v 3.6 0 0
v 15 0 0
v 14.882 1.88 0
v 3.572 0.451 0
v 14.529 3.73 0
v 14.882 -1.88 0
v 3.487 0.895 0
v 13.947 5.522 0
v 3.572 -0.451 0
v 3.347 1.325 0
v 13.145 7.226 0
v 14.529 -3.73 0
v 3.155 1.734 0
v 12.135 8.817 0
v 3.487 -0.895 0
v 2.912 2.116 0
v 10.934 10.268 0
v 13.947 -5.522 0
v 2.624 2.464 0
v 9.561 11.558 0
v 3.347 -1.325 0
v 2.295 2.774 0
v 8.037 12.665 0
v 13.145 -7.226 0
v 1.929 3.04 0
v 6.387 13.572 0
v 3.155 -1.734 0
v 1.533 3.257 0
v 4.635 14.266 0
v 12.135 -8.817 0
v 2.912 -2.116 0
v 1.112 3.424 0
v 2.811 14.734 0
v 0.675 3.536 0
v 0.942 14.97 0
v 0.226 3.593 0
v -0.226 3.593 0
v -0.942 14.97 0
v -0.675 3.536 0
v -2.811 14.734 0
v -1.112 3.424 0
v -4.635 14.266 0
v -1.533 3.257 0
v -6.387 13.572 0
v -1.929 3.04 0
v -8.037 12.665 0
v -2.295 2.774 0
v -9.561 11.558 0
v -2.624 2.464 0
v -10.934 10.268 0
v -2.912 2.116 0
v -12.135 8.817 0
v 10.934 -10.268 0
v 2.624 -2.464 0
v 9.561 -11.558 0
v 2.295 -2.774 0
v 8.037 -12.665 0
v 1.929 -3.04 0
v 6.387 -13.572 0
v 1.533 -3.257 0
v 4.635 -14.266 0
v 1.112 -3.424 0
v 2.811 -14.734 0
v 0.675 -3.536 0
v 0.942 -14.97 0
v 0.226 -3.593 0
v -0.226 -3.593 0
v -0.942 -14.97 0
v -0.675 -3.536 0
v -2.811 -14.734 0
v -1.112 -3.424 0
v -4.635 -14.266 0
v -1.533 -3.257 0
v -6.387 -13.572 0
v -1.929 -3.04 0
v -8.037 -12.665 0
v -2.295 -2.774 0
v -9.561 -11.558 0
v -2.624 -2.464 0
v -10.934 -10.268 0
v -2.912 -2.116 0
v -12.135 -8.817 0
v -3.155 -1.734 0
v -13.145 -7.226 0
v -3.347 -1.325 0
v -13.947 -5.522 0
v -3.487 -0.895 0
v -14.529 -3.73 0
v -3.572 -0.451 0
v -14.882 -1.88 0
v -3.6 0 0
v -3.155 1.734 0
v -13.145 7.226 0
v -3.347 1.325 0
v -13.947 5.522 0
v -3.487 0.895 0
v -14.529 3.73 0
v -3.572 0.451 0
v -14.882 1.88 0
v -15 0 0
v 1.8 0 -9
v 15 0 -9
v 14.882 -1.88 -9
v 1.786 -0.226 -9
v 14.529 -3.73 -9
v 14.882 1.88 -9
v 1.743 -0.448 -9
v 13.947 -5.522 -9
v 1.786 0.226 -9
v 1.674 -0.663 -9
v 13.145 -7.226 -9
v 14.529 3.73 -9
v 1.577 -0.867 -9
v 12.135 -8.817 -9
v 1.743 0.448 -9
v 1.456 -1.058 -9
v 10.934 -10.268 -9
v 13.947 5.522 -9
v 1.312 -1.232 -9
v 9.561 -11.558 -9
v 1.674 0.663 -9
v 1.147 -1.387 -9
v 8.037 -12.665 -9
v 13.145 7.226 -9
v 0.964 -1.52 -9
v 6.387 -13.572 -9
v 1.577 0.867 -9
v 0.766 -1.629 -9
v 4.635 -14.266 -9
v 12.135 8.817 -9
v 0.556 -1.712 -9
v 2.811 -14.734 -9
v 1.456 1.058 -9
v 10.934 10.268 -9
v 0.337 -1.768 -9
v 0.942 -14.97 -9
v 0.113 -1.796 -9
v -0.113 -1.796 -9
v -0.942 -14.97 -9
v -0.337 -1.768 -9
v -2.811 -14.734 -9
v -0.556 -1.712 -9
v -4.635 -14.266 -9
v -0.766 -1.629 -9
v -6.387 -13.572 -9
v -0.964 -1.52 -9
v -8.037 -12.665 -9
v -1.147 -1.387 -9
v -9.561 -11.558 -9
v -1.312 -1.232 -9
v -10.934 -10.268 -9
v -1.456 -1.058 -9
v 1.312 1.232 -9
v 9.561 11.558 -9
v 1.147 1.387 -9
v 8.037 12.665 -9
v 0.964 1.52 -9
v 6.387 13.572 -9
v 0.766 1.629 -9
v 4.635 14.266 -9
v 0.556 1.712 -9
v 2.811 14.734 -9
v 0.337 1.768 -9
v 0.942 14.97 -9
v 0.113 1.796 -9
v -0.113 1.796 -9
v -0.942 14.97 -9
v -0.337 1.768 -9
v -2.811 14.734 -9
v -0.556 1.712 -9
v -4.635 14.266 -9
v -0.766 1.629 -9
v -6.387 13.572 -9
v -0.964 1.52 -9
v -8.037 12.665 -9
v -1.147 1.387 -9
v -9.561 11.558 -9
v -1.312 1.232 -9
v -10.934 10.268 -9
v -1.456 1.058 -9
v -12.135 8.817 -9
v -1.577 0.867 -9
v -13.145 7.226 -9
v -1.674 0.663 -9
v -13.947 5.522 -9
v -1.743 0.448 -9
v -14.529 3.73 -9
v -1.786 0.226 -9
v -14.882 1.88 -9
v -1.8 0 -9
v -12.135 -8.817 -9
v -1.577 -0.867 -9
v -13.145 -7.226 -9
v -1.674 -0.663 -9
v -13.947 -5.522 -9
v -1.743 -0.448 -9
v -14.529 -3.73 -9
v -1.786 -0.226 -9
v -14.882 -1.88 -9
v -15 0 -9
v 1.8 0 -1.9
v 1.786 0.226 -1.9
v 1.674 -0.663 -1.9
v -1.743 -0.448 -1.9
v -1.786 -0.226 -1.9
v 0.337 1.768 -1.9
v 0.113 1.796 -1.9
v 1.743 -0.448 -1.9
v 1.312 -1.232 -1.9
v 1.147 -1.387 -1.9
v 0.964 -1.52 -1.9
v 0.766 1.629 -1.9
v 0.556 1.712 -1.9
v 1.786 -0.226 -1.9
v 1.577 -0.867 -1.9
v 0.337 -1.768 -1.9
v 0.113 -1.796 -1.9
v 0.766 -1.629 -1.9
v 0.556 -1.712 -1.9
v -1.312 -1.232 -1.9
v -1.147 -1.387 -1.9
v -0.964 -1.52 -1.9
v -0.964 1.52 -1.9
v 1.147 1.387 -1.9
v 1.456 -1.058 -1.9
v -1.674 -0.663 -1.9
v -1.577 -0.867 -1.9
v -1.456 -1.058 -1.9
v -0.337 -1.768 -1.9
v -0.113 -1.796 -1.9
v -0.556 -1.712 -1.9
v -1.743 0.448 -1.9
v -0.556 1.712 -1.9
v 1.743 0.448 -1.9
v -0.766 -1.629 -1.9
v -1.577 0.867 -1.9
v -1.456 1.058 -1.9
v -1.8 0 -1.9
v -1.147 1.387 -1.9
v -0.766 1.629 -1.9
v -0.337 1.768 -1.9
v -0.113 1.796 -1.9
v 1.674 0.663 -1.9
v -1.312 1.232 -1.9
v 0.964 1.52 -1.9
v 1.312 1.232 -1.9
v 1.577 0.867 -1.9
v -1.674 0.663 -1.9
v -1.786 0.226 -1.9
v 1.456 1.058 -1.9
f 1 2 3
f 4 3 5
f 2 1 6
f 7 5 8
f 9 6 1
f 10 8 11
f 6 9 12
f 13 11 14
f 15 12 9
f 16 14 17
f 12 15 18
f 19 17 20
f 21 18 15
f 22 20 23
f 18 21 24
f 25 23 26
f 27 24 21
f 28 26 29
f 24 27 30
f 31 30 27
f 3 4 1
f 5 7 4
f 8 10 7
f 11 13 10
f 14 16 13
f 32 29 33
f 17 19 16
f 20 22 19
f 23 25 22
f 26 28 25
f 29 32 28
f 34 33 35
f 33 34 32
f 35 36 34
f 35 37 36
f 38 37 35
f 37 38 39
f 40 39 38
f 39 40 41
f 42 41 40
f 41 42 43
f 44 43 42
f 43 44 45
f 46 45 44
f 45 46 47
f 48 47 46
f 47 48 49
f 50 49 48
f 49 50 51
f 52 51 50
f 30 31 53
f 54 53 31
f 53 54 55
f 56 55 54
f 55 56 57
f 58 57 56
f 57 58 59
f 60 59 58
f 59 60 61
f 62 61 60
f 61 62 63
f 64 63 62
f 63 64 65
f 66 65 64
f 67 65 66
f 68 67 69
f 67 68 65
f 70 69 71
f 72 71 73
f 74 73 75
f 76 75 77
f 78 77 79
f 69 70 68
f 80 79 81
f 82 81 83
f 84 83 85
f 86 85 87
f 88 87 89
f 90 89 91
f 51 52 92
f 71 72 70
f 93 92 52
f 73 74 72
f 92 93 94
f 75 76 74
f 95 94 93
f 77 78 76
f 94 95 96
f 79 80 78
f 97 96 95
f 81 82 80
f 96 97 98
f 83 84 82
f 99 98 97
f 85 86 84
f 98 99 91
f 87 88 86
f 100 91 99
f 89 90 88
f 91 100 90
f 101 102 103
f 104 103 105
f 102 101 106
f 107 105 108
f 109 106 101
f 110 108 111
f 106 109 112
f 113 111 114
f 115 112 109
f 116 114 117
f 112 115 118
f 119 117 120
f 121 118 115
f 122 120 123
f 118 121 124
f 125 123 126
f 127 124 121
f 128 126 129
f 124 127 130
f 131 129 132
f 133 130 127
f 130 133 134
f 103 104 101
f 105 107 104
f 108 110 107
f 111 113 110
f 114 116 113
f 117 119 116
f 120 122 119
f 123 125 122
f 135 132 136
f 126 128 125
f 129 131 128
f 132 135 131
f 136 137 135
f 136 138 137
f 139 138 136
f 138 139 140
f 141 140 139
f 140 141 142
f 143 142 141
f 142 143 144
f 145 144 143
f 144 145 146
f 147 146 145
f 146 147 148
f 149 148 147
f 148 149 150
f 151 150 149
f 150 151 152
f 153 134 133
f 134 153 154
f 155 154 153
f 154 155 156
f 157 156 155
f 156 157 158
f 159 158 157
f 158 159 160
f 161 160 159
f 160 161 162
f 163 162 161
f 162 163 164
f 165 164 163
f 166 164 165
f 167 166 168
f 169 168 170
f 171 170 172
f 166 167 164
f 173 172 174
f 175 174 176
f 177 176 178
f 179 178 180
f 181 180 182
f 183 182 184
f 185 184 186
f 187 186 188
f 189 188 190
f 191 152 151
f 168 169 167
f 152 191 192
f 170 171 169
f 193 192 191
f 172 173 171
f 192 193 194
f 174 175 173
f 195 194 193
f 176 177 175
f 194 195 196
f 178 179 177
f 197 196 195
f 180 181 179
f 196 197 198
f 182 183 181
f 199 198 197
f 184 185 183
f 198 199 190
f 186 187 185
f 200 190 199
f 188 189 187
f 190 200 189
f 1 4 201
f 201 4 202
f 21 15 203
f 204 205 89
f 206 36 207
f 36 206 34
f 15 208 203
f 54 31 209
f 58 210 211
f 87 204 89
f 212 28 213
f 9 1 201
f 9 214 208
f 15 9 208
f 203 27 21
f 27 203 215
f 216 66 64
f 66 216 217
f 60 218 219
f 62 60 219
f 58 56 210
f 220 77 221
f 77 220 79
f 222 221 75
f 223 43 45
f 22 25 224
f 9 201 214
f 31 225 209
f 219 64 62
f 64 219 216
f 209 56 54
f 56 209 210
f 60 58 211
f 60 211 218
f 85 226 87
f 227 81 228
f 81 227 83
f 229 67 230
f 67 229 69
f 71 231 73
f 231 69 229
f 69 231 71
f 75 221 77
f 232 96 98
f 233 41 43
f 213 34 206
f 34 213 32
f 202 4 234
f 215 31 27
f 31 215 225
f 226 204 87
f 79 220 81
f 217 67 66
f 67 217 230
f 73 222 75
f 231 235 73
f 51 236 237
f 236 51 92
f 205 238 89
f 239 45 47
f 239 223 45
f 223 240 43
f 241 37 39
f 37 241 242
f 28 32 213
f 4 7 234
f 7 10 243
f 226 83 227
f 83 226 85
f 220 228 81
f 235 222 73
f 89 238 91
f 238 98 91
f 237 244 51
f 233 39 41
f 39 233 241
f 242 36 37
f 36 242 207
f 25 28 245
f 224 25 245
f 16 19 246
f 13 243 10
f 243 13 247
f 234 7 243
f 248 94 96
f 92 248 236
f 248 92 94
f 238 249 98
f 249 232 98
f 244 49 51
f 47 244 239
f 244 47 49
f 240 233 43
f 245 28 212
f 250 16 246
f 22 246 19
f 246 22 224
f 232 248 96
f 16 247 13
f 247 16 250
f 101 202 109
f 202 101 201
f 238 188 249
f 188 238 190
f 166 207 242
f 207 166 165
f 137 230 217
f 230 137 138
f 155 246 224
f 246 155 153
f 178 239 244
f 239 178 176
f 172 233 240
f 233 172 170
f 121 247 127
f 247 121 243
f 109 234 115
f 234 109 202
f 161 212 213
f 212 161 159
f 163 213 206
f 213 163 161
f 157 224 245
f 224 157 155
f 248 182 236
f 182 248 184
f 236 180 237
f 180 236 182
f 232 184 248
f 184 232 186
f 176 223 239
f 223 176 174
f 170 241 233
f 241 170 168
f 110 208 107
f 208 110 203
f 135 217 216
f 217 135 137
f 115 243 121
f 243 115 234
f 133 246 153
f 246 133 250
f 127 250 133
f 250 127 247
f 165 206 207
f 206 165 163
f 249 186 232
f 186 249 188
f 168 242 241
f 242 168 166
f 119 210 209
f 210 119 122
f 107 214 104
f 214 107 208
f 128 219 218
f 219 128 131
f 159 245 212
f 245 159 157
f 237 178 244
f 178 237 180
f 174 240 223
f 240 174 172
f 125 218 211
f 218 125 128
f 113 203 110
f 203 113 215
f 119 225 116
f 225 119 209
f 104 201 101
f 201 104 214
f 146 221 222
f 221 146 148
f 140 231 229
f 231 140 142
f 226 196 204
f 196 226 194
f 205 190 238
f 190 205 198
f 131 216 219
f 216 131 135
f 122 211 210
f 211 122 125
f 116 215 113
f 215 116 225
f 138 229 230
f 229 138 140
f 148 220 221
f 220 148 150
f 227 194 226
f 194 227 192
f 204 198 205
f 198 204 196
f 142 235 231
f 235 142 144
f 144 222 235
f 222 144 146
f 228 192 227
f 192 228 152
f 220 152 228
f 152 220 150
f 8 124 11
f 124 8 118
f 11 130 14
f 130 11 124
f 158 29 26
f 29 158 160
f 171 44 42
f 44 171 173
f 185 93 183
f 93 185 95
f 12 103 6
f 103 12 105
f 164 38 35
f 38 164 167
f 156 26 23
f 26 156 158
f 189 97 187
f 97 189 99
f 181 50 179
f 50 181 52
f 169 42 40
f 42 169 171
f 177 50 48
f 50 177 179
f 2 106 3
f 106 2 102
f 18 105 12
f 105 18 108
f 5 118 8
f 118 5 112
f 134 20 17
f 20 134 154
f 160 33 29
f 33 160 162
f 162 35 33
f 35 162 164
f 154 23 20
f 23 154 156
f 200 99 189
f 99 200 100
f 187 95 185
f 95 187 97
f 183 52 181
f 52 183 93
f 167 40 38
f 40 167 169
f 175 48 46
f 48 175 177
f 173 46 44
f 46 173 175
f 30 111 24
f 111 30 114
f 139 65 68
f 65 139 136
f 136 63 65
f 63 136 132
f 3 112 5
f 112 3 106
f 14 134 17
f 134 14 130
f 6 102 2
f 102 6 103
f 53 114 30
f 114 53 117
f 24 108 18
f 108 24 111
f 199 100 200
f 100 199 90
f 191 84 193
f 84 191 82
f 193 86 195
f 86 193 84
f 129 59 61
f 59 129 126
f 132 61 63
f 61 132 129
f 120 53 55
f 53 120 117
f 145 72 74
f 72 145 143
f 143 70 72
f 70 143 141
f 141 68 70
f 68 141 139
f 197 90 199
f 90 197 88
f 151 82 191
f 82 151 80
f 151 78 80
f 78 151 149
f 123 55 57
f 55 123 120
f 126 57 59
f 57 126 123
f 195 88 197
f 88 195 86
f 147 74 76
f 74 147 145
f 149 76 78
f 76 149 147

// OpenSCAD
$fn = 50;


difference() {
	union() {
		translate(v = [0, 0, -9.0000000000]) {
			cylinder(h = 9, r = 15.0000000000);
		}
	}
	union() {
		translate(v = [0, 0, 0]) {
			rotate(a = [0, 0, 0]) {
				difference() {
					union() {
						translate(v = [0, 0, -9.0000000000]) {
							cylinder(h = 9, r = 1.5000000000);
						}
						translate(v = [0, 0, -1.9000000000]) {
							cylinder(h = 1.9000000000, r1 = 1.8000000000, r2 = 3.6000000000);
						}
						translate(v = [0, 0, -9.0000000000]) {
							cylinder(h = 9, r = 1.8000000000);
						}
						translate(v = [0, 0, -9.0000000000]) {
							cylinder(h = 9, r = 1.5000000000);
						}
					}
					union();
				}
			}
		}
	}
}
